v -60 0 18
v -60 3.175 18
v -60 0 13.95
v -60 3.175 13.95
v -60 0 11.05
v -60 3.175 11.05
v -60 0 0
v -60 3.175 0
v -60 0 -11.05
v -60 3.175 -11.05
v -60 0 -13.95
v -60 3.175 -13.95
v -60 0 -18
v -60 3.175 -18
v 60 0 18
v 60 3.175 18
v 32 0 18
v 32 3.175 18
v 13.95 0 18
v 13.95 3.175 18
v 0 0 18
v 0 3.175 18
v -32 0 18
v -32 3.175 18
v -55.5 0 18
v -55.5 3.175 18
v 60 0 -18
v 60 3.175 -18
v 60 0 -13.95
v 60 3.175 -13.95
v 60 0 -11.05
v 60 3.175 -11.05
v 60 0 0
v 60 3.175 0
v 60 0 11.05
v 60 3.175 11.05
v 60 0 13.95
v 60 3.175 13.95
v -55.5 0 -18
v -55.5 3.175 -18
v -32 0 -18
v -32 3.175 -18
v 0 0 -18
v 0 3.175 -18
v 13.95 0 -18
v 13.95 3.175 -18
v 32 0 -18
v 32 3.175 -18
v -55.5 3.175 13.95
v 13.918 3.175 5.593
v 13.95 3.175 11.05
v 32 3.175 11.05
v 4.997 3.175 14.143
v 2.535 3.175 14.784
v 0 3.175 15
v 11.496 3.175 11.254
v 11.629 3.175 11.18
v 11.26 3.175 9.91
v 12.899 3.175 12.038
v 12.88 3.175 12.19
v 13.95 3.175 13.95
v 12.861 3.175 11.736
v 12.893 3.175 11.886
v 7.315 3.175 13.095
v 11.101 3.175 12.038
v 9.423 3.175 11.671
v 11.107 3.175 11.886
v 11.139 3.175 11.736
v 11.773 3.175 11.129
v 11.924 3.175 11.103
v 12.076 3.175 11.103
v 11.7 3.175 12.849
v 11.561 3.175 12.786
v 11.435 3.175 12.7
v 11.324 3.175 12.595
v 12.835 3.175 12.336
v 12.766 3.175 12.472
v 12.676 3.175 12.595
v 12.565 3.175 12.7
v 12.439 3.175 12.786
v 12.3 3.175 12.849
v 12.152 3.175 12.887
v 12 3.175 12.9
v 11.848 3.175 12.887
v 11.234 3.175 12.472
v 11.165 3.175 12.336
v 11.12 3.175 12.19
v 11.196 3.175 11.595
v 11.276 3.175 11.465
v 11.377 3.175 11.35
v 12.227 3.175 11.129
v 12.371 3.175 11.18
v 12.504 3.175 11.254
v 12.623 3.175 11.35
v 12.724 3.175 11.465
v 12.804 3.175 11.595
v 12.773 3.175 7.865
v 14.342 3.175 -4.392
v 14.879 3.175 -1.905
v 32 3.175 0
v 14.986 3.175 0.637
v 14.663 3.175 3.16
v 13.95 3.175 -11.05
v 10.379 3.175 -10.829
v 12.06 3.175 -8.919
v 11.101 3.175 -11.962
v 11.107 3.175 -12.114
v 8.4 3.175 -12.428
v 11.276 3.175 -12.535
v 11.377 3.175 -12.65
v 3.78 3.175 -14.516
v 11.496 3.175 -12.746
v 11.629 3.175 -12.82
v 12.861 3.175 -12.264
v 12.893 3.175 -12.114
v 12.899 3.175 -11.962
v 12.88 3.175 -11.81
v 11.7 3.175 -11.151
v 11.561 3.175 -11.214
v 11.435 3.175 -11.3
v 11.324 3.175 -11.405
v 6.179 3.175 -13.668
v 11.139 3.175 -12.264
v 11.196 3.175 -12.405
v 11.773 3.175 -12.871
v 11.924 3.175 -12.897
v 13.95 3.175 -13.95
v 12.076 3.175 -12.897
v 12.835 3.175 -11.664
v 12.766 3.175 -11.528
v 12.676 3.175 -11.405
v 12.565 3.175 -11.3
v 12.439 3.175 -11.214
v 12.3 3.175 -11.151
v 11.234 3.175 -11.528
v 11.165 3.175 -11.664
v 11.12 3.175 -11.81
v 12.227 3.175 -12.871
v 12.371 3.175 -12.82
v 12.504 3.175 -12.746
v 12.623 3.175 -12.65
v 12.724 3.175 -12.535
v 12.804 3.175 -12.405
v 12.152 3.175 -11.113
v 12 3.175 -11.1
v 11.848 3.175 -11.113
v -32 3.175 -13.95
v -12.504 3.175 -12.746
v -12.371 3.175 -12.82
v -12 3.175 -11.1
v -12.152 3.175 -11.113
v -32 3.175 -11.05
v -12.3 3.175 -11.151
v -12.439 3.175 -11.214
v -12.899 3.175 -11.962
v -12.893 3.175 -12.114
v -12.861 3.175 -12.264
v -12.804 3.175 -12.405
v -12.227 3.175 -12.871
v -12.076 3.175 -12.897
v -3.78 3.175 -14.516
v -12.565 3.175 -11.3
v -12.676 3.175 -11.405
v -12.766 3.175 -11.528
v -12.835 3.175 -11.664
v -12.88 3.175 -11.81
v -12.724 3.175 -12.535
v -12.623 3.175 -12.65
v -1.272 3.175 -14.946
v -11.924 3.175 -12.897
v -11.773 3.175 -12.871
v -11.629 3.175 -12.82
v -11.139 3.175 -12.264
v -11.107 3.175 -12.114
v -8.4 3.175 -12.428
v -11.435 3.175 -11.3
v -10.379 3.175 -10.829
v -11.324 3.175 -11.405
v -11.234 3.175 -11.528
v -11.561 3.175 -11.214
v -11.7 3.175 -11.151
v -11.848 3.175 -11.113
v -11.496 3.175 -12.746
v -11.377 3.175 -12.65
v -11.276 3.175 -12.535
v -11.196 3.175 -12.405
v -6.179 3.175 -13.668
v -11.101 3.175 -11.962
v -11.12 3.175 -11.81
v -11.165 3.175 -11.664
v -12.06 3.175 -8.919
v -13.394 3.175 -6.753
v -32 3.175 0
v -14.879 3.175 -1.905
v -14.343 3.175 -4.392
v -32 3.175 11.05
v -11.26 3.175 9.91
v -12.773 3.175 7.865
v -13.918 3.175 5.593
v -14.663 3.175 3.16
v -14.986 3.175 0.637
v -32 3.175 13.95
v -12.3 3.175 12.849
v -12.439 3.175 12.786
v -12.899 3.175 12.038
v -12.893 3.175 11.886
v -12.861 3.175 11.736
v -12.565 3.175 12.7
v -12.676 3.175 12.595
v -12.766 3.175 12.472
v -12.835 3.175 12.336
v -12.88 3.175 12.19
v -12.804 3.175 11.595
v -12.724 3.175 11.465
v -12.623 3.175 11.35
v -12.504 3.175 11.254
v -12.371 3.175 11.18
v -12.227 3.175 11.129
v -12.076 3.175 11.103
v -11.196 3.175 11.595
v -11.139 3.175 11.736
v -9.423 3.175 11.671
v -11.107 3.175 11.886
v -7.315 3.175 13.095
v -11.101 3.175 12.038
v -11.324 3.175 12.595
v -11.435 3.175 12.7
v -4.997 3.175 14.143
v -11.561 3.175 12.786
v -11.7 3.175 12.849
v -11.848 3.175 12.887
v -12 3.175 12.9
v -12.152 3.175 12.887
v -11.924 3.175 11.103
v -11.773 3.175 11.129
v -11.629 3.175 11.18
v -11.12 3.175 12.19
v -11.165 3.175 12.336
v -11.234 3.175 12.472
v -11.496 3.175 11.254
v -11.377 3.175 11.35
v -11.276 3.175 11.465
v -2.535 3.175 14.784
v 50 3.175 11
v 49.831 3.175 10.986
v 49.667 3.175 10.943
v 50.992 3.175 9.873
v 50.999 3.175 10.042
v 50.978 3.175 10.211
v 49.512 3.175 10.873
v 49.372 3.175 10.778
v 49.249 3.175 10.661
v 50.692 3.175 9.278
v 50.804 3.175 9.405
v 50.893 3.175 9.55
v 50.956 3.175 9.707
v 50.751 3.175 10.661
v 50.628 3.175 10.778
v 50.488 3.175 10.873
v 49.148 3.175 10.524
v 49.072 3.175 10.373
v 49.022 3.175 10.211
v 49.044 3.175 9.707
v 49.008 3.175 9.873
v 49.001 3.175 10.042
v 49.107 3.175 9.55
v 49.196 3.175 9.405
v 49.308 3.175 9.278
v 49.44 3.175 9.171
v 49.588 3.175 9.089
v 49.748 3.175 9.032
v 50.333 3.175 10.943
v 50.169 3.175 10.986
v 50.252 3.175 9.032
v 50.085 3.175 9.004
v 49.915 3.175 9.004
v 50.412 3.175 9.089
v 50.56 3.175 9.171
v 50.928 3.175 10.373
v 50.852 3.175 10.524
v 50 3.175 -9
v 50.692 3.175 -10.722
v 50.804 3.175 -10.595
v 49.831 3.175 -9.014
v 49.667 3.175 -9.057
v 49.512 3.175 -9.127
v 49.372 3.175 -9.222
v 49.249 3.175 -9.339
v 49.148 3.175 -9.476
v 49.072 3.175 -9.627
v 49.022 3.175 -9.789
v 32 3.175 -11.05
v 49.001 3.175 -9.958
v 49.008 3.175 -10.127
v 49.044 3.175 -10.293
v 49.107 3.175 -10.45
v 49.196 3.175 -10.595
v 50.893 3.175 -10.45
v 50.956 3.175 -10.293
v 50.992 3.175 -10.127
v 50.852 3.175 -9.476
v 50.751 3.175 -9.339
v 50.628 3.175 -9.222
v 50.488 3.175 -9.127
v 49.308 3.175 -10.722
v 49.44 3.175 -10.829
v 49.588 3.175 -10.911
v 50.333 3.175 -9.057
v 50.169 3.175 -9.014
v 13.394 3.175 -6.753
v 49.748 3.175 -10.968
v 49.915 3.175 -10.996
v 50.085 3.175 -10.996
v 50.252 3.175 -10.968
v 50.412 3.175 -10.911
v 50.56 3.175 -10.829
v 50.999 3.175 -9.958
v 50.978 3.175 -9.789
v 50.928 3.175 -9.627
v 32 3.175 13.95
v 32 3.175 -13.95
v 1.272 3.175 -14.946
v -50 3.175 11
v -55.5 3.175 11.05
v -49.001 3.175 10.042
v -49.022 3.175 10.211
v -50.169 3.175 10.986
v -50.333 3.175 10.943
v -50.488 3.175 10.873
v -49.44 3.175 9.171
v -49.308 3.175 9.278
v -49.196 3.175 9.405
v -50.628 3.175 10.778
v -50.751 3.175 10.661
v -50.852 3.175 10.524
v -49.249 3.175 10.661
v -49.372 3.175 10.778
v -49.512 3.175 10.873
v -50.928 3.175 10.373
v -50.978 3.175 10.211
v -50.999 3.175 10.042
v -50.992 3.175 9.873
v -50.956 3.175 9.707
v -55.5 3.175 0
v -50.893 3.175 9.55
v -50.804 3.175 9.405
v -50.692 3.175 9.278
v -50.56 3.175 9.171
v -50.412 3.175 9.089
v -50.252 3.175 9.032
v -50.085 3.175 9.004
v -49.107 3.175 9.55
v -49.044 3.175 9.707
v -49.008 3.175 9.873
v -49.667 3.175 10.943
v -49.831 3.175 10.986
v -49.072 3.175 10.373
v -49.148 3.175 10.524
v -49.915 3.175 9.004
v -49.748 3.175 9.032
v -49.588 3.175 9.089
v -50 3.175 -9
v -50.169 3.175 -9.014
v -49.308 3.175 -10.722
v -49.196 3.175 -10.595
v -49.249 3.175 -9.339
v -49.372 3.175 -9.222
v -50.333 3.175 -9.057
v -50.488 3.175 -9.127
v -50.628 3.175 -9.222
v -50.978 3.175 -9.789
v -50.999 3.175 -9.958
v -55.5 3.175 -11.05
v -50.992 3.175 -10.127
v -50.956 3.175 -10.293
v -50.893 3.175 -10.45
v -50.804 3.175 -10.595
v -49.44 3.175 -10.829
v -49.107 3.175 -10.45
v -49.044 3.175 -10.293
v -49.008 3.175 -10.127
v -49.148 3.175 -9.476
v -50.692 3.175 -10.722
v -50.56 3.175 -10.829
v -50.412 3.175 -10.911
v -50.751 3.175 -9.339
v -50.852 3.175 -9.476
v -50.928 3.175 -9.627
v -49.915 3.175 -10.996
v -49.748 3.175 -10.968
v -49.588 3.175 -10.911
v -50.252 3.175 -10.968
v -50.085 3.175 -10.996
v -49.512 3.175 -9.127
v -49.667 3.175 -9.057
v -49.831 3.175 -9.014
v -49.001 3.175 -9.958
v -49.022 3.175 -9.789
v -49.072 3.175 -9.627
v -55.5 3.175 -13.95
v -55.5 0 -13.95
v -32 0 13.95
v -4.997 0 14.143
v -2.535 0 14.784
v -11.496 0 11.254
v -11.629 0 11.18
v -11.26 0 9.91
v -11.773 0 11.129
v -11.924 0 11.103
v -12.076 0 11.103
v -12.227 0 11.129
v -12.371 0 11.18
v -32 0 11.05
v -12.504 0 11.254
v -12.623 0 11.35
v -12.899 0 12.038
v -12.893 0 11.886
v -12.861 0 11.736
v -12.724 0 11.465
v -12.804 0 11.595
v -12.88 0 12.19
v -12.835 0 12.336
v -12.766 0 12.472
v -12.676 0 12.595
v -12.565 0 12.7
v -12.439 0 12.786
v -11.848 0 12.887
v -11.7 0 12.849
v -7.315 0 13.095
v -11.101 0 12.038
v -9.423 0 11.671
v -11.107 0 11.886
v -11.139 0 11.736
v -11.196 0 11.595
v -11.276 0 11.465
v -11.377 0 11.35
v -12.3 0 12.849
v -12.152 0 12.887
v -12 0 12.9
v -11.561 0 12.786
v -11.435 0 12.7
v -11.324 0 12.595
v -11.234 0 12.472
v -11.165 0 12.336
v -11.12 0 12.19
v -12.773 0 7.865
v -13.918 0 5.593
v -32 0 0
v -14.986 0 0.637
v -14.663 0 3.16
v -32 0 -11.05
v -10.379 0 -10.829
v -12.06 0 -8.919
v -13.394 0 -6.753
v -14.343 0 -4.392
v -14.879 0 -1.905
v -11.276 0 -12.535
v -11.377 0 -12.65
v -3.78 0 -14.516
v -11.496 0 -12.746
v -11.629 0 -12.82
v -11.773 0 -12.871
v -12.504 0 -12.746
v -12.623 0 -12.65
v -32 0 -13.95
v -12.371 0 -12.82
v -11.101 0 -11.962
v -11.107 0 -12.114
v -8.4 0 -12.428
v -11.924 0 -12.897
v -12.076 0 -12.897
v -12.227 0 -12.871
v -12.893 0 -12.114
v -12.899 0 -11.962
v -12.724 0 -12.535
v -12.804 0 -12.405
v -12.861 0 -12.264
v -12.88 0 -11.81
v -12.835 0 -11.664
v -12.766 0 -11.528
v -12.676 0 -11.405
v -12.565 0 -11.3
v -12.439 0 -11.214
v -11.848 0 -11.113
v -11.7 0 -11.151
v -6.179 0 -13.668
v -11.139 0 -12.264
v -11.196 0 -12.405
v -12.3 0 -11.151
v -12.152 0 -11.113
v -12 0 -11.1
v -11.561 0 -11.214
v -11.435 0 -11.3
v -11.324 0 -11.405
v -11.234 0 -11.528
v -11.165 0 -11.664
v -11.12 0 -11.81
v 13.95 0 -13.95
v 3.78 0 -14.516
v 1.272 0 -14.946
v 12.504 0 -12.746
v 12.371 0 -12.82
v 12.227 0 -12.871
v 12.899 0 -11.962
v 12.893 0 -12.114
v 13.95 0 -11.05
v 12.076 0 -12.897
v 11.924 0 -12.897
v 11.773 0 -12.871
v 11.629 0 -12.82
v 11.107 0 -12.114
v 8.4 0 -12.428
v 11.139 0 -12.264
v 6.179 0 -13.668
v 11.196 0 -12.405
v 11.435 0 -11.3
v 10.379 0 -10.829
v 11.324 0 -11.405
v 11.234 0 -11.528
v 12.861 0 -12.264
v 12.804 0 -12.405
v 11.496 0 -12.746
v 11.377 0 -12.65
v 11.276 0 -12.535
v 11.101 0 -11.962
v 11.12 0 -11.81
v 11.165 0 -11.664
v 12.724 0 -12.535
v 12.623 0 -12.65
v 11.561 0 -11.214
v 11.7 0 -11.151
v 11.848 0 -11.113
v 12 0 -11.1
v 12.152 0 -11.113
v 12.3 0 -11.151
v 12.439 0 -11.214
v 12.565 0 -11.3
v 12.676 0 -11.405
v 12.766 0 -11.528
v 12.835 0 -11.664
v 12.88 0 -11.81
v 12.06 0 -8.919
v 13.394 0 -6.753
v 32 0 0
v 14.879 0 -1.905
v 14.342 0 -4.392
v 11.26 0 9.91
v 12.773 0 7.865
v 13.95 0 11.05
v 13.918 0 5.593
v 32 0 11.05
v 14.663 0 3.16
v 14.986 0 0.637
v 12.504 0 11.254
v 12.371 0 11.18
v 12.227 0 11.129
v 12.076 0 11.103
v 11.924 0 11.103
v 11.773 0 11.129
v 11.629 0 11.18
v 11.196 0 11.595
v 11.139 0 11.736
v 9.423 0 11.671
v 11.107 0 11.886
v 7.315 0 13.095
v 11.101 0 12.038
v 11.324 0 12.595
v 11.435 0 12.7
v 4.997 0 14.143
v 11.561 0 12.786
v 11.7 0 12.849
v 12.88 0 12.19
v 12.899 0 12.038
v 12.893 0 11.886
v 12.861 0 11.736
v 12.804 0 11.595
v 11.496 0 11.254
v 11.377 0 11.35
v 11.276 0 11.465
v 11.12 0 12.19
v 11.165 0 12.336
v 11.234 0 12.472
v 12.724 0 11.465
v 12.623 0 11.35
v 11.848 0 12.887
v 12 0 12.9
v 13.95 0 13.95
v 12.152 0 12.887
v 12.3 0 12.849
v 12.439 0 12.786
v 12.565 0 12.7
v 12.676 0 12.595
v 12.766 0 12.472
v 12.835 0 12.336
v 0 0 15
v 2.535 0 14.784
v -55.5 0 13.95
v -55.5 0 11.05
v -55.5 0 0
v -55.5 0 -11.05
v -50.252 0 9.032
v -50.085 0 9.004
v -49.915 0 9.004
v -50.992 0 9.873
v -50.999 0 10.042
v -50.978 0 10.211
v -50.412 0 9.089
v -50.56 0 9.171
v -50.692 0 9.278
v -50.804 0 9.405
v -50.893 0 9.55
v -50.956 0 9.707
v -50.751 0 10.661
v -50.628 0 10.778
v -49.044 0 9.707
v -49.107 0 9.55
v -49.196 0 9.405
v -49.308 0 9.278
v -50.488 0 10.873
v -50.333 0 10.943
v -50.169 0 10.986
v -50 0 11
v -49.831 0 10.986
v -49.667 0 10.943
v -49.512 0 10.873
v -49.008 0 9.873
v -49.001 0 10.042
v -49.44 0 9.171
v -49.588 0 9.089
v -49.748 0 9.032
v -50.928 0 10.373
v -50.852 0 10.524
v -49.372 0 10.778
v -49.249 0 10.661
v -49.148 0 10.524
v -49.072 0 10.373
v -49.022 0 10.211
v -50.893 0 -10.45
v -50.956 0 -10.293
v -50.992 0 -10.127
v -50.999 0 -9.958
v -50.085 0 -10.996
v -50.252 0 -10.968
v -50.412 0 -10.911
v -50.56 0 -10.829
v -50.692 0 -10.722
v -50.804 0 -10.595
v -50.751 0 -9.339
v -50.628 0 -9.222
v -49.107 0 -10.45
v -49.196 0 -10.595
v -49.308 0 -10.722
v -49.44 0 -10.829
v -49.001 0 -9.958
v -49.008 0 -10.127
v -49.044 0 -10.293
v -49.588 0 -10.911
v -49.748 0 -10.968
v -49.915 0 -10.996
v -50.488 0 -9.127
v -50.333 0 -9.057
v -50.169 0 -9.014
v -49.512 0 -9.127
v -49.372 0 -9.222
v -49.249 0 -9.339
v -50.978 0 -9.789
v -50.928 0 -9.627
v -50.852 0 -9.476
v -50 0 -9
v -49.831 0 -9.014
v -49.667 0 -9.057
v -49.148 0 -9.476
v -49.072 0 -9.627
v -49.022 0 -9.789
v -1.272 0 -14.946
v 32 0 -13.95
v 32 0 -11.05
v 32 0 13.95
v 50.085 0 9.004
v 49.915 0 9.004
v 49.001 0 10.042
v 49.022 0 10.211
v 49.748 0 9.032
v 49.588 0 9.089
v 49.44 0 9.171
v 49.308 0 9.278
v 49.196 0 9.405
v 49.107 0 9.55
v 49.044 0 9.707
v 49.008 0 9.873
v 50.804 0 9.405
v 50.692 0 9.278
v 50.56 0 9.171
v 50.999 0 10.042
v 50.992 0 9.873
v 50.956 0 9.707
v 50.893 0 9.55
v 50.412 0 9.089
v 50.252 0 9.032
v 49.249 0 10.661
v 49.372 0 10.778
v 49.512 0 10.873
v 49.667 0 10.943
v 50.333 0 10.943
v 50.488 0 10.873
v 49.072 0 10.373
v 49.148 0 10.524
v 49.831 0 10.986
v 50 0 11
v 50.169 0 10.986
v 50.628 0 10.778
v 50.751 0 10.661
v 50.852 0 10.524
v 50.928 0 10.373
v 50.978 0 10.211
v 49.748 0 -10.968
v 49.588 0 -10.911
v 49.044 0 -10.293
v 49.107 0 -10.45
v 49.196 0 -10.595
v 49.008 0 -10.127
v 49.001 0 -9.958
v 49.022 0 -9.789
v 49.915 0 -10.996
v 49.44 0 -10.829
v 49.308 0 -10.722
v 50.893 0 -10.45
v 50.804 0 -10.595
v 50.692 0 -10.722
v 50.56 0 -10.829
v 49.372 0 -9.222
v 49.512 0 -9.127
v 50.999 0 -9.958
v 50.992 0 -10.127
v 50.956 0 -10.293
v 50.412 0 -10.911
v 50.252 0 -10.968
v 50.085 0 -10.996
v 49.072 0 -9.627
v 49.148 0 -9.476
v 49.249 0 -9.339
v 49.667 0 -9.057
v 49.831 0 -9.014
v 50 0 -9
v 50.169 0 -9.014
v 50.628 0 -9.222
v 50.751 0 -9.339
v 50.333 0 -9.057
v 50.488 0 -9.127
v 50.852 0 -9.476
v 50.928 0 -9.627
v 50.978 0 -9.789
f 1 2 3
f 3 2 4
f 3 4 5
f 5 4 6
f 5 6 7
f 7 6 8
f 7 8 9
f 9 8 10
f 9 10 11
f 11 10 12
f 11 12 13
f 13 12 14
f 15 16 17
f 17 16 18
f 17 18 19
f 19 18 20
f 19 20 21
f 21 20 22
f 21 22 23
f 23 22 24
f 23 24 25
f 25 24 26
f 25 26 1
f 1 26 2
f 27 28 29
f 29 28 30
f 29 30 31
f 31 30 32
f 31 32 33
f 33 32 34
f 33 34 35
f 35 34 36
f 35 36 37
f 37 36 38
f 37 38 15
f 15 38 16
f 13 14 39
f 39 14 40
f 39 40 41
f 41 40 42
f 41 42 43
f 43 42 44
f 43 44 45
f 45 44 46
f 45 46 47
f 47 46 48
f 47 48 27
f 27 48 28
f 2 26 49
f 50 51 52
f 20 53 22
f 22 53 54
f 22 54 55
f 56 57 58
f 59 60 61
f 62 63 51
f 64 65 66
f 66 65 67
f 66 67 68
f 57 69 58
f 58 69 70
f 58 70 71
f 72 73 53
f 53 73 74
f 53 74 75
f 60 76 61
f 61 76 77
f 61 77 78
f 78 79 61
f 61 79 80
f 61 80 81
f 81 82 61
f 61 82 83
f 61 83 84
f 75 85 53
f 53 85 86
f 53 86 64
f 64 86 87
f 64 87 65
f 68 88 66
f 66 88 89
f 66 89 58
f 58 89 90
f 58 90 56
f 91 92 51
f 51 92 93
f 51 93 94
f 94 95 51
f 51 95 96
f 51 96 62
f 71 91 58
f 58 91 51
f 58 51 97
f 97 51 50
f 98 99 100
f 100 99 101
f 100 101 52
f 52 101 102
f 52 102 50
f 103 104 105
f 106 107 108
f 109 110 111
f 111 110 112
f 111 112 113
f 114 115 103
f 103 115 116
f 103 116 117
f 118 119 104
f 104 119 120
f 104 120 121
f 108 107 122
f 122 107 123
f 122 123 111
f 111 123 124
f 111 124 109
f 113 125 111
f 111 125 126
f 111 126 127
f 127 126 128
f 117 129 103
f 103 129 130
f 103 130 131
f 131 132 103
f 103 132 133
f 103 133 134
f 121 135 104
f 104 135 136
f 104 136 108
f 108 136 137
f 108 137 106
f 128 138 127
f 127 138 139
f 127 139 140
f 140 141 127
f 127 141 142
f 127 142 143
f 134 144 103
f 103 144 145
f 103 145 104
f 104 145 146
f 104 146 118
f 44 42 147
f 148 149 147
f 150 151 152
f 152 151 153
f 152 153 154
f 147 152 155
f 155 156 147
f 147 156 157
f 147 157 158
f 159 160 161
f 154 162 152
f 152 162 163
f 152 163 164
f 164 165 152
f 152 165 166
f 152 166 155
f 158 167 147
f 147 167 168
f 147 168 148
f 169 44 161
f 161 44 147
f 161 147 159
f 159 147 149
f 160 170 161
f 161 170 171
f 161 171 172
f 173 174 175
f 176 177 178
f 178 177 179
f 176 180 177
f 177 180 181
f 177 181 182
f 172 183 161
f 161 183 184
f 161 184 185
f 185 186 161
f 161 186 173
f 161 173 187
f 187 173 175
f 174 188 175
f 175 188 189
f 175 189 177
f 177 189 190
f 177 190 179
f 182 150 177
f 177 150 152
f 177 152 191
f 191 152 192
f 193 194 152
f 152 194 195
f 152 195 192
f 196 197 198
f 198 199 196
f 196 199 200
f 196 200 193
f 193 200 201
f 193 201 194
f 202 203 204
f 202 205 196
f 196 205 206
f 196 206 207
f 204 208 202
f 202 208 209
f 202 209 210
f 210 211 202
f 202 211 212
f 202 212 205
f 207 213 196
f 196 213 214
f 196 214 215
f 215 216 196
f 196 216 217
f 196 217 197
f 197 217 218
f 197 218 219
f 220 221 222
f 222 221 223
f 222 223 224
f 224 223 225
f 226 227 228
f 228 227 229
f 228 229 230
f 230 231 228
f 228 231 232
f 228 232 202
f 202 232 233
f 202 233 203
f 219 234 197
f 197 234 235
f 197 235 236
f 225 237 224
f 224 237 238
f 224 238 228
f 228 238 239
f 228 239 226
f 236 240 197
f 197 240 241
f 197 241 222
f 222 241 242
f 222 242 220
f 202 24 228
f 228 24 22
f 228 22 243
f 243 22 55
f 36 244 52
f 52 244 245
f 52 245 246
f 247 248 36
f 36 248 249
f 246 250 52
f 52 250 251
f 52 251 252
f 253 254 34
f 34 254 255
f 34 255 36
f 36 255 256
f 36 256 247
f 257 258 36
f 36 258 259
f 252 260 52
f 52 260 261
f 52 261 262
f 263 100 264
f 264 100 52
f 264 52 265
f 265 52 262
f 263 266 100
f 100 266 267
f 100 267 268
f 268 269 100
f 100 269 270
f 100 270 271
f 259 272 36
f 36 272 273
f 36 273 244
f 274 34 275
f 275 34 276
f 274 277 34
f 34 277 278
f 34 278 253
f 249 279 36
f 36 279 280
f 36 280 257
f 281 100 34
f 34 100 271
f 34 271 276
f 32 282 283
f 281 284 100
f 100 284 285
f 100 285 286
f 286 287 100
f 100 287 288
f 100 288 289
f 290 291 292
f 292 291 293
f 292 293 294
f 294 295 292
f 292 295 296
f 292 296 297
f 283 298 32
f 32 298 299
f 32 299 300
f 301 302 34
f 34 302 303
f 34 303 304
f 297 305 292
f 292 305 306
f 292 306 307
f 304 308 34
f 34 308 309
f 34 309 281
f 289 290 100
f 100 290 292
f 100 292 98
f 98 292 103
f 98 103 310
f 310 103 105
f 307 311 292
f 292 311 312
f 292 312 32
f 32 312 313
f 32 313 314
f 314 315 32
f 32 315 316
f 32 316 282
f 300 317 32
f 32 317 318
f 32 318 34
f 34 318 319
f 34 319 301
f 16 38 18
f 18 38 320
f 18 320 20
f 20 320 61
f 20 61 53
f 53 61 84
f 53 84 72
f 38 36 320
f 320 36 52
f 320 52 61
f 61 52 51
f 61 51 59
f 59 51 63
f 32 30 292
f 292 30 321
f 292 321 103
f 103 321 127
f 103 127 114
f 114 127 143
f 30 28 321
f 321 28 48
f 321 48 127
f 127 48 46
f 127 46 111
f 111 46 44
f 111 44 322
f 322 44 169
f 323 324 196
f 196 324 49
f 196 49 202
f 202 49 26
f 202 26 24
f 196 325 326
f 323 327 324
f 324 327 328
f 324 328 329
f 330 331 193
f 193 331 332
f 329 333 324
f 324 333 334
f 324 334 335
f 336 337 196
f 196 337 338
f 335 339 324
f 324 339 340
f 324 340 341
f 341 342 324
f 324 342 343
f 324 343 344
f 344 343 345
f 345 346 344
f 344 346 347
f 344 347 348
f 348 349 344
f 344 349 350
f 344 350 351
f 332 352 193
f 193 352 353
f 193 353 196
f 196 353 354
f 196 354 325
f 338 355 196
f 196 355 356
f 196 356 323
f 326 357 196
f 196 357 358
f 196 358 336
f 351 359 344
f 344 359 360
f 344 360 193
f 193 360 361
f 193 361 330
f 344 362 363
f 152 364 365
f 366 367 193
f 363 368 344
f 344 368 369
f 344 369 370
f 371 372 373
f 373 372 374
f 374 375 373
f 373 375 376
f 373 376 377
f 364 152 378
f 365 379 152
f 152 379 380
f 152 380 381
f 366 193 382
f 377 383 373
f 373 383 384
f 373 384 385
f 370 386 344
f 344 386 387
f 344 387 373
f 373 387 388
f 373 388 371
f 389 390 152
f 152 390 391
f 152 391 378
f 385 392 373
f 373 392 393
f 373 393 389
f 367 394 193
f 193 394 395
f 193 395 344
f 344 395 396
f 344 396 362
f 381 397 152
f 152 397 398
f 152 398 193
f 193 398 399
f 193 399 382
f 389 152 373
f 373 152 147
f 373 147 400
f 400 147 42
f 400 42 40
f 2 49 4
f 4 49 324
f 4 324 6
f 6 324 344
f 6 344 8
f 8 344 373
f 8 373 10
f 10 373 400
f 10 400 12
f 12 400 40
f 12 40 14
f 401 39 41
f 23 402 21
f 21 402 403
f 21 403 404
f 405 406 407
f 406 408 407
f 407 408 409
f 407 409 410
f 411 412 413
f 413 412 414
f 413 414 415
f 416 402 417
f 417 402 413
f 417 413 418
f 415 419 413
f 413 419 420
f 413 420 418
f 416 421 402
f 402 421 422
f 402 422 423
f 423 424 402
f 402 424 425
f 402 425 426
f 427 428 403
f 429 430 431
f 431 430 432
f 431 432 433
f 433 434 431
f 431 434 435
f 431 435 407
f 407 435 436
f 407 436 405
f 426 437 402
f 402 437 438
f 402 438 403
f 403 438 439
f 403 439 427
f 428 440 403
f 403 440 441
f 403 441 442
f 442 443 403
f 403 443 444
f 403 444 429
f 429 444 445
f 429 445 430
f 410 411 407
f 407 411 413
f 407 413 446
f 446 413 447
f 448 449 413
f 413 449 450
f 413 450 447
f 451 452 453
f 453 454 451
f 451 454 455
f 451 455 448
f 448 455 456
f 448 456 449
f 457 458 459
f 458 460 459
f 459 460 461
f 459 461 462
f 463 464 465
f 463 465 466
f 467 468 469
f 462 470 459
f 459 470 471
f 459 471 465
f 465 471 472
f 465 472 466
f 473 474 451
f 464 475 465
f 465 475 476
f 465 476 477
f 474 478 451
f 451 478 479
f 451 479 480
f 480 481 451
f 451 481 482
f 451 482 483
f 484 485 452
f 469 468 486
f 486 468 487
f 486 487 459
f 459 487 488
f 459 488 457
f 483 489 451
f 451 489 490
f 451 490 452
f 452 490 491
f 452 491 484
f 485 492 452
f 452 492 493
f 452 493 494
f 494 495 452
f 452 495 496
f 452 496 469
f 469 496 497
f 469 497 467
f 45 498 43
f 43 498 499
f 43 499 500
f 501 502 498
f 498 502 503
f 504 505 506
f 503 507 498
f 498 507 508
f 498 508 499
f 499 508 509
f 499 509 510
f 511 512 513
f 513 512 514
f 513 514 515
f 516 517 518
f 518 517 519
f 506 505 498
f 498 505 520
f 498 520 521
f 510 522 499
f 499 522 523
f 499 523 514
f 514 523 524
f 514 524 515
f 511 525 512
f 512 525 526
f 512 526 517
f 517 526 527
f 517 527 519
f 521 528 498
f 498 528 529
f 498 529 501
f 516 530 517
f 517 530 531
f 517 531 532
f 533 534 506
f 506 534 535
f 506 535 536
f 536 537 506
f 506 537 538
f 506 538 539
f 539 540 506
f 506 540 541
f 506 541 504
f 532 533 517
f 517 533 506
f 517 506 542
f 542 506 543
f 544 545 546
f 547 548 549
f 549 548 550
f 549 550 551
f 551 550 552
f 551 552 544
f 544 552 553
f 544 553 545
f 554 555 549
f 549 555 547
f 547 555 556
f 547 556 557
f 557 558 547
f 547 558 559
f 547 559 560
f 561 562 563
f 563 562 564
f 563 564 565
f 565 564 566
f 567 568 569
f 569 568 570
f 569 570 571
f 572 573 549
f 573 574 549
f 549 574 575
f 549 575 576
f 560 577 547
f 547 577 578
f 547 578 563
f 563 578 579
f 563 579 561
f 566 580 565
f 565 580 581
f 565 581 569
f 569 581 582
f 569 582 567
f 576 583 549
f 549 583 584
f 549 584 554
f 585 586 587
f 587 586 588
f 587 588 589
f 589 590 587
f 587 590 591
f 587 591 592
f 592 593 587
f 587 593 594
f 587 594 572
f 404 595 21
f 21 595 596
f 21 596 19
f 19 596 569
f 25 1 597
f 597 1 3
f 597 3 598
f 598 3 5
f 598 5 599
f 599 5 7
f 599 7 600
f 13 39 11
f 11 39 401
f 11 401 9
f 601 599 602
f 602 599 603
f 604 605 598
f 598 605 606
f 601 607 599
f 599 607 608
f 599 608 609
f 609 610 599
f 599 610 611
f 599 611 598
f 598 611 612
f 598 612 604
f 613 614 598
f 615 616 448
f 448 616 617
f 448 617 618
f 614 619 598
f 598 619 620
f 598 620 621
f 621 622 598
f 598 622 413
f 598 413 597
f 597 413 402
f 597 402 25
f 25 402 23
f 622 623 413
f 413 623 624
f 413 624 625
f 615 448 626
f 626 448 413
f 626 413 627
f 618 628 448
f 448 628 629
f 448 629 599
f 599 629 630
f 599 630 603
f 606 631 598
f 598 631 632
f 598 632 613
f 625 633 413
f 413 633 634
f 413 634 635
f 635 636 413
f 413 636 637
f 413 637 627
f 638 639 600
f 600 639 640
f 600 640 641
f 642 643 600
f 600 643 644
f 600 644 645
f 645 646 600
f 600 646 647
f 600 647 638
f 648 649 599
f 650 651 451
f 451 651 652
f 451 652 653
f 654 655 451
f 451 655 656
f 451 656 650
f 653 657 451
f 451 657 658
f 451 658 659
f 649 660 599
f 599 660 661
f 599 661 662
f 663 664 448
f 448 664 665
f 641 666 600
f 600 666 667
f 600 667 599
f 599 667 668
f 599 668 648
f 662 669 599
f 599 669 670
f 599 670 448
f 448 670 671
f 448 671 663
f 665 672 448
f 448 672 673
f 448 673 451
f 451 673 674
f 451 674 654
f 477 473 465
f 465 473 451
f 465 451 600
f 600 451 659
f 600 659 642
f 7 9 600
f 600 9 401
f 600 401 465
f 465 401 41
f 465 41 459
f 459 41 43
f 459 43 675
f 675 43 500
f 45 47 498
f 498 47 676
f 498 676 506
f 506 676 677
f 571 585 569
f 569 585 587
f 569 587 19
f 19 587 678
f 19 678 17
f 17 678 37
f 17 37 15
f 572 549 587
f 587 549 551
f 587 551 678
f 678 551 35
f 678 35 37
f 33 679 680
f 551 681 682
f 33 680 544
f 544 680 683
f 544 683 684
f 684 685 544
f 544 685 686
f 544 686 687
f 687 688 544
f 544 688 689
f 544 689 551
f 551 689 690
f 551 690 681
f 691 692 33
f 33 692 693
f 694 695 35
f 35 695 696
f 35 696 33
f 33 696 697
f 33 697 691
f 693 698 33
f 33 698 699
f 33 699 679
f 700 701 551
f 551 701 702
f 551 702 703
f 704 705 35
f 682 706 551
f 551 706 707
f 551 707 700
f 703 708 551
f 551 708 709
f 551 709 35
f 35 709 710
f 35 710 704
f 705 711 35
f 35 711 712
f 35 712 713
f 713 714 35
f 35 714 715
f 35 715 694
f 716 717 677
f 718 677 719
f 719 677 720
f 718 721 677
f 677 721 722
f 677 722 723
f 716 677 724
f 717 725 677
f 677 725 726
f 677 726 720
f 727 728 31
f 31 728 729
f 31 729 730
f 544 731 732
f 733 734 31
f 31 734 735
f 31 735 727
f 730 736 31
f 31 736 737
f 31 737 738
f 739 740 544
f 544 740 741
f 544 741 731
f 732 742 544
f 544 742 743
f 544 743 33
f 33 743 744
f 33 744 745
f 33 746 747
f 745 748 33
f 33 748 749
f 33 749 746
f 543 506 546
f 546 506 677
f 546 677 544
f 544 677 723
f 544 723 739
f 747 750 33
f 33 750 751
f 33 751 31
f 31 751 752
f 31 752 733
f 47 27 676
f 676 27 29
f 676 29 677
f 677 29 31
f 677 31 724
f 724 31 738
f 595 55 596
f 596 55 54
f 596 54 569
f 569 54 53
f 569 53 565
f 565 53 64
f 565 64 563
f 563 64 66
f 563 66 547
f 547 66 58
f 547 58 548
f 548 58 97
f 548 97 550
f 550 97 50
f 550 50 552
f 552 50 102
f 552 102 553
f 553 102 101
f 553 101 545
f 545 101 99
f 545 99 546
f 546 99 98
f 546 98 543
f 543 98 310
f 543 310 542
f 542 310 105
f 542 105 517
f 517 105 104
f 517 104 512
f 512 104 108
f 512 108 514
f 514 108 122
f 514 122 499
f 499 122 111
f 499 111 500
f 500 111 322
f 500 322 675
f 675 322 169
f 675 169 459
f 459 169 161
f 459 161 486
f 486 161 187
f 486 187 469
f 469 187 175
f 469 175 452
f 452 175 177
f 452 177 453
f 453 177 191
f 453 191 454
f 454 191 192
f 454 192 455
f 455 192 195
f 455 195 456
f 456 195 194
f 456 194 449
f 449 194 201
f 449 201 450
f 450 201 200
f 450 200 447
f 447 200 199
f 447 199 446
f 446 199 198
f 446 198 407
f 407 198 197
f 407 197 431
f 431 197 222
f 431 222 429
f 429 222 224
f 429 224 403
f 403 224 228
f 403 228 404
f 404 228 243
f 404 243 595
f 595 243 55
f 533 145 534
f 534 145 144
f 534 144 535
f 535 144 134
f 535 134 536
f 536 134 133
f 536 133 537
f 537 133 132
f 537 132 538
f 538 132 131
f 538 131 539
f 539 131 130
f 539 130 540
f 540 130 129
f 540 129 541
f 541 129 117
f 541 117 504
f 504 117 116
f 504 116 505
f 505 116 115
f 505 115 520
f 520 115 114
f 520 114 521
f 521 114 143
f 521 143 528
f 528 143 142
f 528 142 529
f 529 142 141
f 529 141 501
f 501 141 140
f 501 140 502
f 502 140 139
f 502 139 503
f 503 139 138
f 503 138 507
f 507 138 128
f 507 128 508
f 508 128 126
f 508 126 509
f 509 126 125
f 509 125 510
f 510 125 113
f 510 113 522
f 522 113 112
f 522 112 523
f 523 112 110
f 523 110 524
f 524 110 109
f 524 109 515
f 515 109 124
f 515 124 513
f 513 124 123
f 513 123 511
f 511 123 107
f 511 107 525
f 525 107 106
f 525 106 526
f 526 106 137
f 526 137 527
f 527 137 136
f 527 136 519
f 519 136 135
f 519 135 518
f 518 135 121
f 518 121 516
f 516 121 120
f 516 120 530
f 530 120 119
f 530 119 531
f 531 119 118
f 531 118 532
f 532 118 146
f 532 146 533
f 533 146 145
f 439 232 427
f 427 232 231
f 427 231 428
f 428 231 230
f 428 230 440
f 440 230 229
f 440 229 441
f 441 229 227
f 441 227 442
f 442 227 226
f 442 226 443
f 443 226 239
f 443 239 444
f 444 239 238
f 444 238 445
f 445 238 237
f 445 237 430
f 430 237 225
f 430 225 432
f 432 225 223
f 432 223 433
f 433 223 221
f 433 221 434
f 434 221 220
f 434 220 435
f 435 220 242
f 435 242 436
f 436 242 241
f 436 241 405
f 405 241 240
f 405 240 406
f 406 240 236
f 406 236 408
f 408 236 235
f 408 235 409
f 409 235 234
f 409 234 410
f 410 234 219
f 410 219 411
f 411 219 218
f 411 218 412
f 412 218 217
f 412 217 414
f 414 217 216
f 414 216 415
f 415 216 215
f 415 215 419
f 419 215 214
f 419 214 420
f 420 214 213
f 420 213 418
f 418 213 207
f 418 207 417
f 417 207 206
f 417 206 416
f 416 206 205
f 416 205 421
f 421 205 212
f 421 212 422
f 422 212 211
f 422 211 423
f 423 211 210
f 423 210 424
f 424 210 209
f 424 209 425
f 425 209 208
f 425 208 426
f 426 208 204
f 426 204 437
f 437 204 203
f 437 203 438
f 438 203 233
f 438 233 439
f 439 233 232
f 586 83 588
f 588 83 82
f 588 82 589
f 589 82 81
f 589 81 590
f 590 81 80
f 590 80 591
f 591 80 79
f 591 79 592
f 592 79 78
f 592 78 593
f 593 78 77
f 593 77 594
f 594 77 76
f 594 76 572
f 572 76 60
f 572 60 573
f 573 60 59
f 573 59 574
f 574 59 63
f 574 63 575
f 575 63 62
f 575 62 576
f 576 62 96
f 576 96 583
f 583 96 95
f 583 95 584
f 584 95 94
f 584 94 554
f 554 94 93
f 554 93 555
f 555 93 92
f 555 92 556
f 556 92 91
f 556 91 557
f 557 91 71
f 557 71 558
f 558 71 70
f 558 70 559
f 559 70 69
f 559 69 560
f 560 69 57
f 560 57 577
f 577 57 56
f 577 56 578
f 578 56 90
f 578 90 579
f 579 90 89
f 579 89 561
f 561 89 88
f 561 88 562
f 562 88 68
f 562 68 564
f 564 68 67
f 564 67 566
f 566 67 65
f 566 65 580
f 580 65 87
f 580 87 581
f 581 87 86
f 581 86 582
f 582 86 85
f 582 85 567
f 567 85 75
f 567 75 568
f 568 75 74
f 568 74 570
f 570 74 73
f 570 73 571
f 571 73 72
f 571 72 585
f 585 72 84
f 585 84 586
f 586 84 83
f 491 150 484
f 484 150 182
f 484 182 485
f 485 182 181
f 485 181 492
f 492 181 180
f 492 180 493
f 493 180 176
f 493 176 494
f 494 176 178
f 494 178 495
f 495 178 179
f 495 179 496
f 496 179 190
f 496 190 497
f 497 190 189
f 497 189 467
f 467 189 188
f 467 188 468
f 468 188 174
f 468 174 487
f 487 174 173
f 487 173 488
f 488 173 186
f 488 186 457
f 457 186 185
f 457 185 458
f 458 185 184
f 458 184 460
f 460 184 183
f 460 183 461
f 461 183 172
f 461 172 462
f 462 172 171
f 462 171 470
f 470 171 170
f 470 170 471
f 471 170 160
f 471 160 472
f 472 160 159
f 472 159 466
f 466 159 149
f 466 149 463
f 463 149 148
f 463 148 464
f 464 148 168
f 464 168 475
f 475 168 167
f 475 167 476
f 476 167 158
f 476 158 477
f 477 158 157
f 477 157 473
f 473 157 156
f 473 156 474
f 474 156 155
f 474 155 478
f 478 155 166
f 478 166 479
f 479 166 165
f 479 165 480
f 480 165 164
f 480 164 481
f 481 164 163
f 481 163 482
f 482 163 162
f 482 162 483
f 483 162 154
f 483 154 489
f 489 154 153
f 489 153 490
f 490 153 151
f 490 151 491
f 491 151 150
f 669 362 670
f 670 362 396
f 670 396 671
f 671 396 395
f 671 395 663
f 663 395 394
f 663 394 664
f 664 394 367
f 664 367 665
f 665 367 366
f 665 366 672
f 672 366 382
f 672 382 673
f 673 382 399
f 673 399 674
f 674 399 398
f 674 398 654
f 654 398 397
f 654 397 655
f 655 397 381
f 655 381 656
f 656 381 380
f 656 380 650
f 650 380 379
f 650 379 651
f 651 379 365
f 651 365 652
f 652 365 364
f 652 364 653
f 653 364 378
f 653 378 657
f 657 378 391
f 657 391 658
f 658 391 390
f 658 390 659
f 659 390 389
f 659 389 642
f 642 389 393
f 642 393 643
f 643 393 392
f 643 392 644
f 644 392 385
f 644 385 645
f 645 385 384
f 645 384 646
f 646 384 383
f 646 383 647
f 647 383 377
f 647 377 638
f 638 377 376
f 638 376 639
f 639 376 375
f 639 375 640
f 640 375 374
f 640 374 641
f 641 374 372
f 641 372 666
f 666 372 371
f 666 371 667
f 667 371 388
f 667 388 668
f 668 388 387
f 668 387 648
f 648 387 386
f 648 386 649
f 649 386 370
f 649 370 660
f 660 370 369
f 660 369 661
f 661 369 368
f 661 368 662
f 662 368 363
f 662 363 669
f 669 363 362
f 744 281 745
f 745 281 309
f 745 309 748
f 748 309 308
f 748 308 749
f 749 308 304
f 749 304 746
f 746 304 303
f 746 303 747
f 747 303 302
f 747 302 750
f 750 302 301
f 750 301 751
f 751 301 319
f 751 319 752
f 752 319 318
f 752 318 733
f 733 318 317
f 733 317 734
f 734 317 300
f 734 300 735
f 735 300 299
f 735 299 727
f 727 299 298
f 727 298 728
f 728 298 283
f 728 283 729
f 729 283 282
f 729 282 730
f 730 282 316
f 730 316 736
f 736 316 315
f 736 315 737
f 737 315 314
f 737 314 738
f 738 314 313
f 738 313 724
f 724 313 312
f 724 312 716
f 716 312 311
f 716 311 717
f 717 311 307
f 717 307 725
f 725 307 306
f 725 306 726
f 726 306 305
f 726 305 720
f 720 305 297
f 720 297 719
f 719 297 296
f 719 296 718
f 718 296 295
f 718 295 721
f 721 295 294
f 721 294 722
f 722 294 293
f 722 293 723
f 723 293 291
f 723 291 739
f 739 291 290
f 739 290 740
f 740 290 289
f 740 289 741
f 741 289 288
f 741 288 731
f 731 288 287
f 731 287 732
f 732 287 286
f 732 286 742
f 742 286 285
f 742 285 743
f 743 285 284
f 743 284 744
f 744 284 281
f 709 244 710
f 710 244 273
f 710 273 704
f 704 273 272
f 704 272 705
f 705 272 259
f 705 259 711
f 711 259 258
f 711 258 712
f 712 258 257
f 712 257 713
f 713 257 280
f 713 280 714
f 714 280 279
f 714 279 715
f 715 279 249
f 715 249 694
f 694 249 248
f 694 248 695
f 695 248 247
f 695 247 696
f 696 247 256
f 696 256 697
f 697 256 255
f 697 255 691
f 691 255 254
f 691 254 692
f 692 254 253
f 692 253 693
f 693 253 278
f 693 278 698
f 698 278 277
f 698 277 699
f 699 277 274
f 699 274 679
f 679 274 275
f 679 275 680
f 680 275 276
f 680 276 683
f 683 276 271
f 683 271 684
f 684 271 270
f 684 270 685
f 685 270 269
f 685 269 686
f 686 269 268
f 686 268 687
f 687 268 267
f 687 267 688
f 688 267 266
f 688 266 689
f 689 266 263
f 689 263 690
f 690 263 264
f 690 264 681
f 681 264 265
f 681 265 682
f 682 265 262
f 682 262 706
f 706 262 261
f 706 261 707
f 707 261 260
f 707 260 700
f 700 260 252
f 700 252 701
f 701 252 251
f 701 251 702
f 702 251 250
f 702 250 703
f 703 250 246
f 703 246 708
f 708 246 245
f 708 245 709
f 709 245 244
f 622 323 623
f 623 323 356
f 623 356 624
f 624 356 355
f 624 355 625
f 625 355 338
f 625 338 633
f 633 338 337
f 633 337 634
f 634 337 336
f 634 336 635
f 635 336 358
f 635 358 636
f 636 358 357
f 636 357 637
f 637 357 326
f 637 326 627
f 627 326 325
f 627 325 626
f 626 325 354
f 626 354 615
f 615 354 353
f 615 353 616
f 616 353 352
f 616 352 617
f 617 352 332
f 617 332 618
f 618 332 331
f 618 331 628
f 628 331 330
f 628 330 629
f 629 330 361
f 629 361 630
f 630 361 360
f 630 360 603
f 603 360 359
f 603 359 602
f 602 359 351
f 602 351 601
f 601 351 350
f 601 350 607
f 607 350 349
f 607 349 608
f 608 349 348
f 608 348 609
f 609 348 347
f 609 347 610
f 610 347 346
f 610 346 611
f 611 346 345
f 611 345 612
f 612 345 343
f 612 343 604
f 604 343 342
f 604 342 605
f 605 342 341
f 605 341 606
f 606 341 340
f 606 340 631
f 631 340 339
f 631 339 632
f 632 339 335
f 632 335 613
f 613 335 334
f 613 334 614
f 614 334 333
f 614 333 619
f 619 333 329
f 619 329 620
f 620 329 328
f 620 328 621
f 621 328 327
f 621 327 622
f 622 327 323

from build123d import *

# Parameters (mm, degrees)
SKETCH1_W           = 120
SKETCH1_H           = 36
BOSS_EXTRUDE1_DEPTH = 3.175
SKETCH2_R           = 15
CUT_EXTRUDE1_DEPTH  = 10
SKETCH3_R           = 0.9
CUT_EXTRUDE2_DEPTH  = 10
SKETCH4_R           = 1
CUT_EXTRUDE3_DEPTH  = 10


with BuildPart() as part:
    # Sketch1 → Boss-Extrude1 (new body)
    with BuildSketch(Plane(origin=(0, 0, 0), x_dir=(1, 0, 0), z_dir=(0, 1, 0))):
        Rectangle(SKETCH1_W, SKETCH1_H)
    extrude(amount=BOSS_EXTRUDE1_DEPTH)

    # Sketch2 → Cut-Extrude1 (cut)
    with BuildSketch(Plane(origin=(0, 3.175, 0), x_dir=(1, 0, 0), z_dir=(0, 1, 0))):
        with Locations(Location((0, 0, 0), (0, 0, 270))):
            Circle(SKETCH2_R)
    extrude(amount=-CUT_EXTRUDE1_DEPTH, mode=Mode.SUBTRACT)

    # Sketch3 → Cut-Extrude2 (cut)
    with BuildSketch(Plane(origin=(0, 3.175, 0), x_dir=(1, 0, 0), z_dir=(0, 1, 0))):
        with Locations(Location((12, 12, 0), (0, 0, 270))):
            Circle(SKETCH3_R)
        with Locations(Location((-12, 12, 0), (0, 0, 270))):
            Circle(SKETCH3_R)
        with Locations(Location((12, -12, 0), (0, 0, 270))):
            Circle(SKETCH3_R)
        with Locations(Location((-12, -12, 0), (0, 0, 270))):
            Circle(SKETCH3_R)
    extrude(amount=-CUT_EXTRUDE2_DEPTH, mode=Mode.SUBTRACT)

    # Sketch4 → Cut-Extrude3 (cut)
    with BuildSketch(Plane(origin=(0, 3.175, 0), x_dir=(1, 0, 0), z_dir=(0, 1, 0))):
        with Locations(Location((-50, 10, 0), (0, 0, 270))):
            Circle(SKETCH4_R)
        with Locations(Location((50, 10, 0), (0, 0, 270))):
            Circle(SKETCH4_R)
        with Locations(Location((50, -10, 0), (0, 0, 270))):
            Circle(SKETCH4_R)
        with Locations(Location((-50, -10, 0), (0, 0, 270))):
            Circle(SKETCH4_R)
    extrude(amount=-CUT_EXTRUDE3_DEPTH, mode=Mode.SUBTRACT)


solid = part.part
